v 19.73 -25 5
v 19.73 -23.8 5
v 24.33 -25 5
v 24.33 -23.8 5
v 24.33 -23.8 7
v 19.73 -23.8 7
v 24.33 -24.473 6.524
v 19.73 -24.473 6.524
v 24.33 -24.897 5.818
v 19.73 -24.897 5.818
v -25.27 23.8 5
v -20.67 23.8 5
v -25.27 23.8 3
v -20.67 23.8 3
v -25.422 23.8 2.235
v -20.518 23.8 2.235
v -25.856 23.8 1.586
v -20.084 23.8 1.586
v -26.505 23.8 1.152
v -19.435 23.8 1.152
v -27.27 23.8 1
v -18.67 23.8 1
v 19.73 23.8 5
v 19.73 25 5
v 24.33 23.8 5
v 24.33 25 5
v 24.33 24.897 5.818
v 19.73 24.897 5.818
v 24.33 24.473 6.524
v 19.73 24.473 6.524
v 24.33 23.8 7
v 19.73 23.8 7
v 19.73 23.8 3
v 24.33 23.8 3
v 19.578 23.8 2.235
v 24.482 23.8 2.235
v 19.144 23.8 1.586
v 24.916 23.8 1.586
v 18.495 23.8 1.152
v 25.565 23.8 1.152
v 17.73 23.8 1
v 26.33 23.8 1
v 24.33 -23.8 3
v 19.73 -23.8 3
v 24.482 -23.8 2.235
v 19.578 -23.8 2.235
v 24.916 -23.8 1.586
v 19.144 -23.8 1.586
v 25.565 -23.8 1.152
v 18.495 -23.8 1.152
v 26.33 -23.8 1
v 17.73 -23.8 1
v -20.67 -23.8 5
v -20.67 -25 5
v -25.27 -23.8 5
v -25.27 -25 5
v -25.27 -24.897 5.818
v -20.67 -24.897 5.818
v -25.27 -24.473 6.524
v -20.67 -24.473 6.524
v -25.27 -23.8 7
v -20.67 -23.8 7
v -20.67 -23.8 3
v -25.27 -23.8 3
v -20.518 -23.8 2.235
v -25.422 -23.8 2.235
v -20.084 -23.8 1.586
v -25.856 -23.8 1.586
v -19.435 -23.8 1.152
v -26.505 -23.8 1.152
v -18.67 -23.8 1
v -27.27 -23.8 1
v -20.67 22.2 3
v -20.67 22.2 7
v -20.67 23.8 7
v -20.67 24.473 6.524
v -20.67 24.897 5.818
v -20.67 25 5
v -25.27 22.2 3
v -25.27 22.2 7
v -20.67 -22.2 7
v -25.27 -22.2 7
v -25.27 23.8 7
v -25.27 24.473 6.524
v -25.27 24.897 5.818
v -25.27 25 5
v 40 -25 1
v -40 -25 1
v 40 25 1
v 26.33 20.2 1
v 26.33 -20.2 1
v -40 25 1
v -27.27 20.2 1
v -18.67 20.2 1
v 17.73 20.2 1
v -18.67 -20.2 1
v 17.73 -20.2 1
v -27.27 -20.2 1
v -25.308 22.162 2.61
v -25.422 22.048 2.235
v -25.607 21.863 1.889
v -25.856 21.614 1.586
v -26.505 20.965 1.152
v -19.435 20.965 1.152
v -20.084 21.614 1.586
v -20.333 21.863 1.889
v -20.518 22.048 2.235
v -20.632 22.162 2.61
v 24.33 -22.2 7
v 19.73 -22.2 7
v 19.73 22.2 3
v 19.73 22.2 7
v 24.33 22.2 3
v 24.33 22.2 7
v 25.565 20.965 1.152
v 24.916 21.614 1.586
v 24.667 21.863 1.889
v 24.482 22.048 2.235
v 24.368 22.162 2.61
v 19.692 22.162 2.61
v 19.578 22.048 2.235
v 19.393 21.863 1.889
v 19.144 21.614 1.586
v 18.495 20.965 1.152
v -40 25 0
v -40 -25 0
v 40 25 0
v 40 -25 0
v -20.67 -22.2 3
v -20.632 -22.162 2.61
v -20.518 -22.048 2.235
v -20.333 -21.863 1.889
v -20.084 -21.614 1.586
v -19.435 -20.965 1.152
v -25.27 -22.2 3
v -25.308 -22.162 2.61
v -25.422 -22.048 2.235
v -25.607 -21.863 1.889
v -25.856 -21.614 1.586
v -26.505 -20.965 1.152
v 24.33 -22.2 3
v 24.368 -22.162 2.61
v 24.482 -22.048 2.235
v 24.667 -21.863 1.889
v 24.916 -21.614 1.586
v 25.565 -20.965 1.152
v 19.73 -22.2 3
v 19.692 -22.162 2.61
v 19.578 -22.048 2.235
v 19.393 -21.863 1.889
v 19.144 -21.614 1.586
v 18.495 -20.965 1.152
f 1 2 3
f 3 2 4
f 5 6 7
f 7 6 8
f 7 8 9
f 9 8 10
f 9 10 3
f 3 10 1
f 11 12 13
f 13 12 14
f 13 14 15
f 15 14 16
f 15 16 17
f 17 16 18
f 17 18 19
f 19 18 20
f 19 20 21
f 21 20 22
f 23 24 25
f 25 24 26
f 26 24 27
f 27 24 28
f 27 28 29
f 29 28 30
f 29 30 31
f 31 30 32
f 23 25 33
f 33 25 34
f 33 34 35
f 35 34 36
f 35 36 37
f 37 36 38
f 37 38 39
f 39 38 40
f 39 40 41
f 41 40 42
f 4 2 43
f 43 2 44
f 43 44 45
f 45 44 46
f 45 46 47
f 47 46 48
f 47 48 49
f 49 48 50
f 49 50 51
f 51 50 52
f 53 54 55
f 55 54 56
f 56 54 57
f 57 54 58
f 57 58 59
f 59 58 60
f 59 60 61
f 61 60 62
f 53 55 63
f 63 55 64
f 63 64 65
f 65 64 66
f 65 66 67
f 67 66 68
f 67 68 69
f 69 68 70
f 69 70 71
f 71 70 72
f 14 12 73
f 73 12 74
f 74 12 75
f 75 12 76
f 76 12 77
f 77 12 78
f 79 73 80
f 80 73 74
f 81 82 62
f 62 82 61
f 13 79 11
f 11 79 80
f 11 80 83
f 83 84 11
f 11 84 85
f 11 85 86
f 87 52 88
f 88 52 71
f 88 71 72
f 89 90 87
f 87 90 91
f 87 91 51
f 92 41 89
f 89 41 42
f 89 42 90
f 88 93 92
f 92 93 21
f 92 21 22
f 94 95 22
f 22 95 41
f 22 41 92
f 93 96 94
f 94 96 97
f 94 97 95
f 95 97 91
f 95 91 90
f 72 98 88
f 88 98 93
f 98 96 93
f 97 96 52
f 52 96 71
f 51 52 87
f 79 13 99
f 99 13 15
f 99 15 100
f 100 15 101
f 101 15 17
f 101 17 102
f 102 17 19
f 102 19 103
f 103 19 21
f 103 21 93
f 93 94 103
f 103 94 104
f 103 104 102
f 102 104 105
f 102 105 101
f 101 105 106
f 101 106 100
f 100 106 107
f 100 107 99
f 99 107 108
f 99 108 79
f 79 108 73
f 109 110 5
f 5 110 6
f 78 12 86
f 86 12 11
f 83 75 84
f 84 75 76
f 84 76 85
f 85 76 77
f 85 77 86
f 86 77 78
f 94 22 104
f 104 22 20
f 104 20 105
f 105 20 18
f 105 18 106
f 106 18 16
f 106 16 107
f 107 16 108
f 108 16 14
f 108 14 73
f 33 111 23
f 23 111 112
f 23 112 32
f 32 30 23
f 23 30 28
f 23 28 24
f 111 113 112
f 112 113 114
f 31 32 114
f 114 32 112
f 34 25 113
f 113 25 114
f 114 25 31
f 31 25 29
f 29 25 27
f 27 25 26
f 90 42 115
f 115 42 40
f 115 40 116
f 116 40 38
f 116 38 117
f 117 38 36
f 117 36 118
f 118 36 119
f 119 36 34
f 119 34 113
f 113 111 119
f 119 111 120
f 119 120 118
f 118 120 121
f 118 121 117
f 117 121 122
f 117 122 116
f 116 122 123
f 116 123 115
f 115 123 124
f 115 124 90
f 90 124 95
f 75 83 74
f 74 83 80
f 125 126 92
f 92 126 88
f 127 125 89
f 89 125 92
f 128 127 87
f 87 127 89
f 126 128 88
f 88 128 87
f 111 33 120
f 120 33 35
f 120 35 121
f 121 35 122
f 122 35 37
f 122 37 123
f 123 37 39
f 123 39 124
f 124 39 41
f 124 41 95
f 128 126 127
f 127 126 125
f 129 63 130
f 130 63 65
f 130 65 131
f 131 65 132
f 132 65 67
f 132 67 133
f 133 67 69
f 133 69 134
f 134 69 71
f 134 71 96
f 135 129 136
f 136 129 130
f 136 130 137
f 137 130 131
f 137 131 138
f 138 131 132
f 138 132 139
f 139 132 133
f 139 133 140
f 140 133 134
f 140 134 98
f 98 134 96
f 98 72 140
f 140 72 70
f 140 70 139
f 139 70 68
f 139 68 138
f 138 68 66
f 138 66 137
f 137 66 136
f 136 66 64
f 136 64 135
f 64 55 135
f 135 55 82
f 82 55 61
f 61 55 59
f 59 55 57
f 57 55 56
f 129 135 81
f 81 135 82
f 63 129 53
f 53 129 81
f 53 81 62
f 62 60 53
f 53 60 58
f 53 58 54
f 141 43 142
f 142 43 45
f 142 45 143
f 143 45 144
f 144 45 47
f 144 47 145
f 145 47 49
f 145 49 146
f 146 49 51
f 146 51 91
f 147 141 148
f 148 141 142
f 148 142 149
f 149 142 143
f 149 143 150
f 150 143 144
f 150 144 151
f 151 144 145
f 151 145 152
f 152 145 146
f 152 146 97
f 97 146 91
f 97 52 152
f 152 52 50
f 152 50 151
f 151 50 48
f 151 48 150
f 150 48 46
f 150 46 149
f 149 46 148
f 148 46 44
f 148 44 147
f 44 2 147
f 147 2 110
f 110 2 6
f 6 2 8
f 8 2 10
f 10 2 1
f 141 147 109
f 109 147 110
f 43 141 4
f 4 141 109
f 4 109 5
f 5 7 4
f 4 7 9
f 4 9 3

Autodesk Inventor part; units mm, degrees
ref_plane "YZ Plane" through (0, 0, 0) normal (1, 0, 0) x (0, 1, 0)
ref_plane "XZ Plane" through (0, 0, 0) normal (0, 1, 0) x (-1, 0, 0)
sketch "Sketch1" plane through (0, 0, 0) normal (0, 0, 1) x (1, 0, 0)
  line L0 (0, 10.3664) -> (0, -9.7905)
  line L1 (-11.2303, 0) -> (9.7082, 0)
  line L2 (-40, 25) -> (40, 25)
  line L3 (40, 25) -> (40, -25)
  line L4 (40, -25) -> (-40, -25)
  line L5 (-40, -25) -> (-40, 25)
  point P0 (0, 0)
  dimension "d0" = 80
  dimension "d1" = 50
extrude "Extrusion1" add sketch "Sketch1" along normal blind 1
sketch "Sketch2" plane through (0, 0, 1) normal (0, 0, 1) x (1, 0, 0)
  line L0 (-25.47, 29.9826) -> (-25.47, 14.8936)
  line L1 (-40, 25) -> (-40, -25) projected
  line L2 (-20.47, 29.2374) -> (-20.47, 19.4575)
  line L3 (19.53, 30.5414) -> (19.53, 15.3593)
  line L4 (40, -25) -> (40, 25) projected
  line L5 (24.53, 28.7717) -> (24.53, 17.8741)
  line L6 (-43.5467, 24) -> (46.149, 24)
  line L7 (40, 25) -> (-40, 25) projected
  line L8 (-25.47, 24) -> (-20.47, 24)
  line L9 (-20.47, 24) -> (-20.47, 22)
  line L10 (-20.47, 22) -> (-25.47, 22)
  line L11 (-25.47, 22) -> (-25.47, 24)
  line L12 (-25.27, 22.2) -> (-20.67, 22.2)
  line L13 (-20.67, 22.2) -> (-20.67, 23.8)
  line L14 (-20.67, 23.8) -> (-25.27, 23.8)
  line L15 (-25.27, 23.8) -> (-25.27, 22.2)
  line L16 (19.53, 24) -> (24.53, 24)
  line L17 (24.53, 24) -> (24.53, 22)
  line L18 (24.53, 22) -> (19.53, 22)
  line L19 (19.53, 22) -> (19.53, 24)
  line L20 (19.73, 22.2) -> (24.33, 22.2)
  line L21 (24.33, 22.2) -> (24.33, 23.8)
  line L22 (24.33, 23.8) -> (19.73, 23.8)
  line L23 (19.73, 23.8) -> (19.73, 22.2)
  point P0 (0, 0)
  dimension "d4" = 14.53
  dimension "d5" = 19.53
  dimension "d6" = 20.47
  dimension "d7" = 15.47
  dimension "d8" = 1
  dimension "d9" = 4
  dimension "d10" = 0.2
  dimension "d11" = 4
  dimension "d12" = 0.2
extrude "Extrusion2" add sketch "Sketch2" along normal blind 6 contours L15 L14 L13 L12 | L23 L22 L21 L20
sketch "Sketch4" plane through (-25.27, 22.2, 1) normal (-1, 0, 0) x (0, 0, 1)
  line L0 (0, 1.6) -> (6, 1.6) projected
  arc A0 (6, 1.6) -> (4, 2.8) centre (4.164, 0.8067) ccw
  line L1 (6, 1.6) -> (6, 0) projected
  line L2 (4, 2.8) -> (4, 1.6)
  line L3 (4, 1.6) -> (6, 1.6)
  point P0 (-1, -22.2)
  dimension "d15" = 1.2
  dimension "d16" = 2
  dimension "d17" = 2
extrude "Extrusion3" add sketch "Sketch4" against normal up to surface (4.6 mm away)
ref_plane "Work Plane1" through (-0.47, 22.2, 1) normal (-1, 0, 0) x (0, 0, 1)
mirror "Mirror2" about plane through (0, 0, 0) normal (0, 1, 0) of "Extrusion3", "Extrusion2"
mirror "Mirror1" about plane through (-0.47, 22.2, 1) normal (-1, 0, 0) of "Extrusion3", "Extrusion2", "Mirror2"
fillet "Fillet1" radius 2 12 edges at (-20.67, -23, 1) (-22.97, -22.2, 1) (-25.27, -23, 1) (24.33, -23, 1) (22.03, -22.2, 1) (19.73, -23, 1) (19.73, 23, 1) (22.03, 22.2, 1) (24.33, 23, 1) (-20.67, 23, 1) (-22.97, 22.2, 1) (-25.27, 23, 1)
properties part number "cover"
